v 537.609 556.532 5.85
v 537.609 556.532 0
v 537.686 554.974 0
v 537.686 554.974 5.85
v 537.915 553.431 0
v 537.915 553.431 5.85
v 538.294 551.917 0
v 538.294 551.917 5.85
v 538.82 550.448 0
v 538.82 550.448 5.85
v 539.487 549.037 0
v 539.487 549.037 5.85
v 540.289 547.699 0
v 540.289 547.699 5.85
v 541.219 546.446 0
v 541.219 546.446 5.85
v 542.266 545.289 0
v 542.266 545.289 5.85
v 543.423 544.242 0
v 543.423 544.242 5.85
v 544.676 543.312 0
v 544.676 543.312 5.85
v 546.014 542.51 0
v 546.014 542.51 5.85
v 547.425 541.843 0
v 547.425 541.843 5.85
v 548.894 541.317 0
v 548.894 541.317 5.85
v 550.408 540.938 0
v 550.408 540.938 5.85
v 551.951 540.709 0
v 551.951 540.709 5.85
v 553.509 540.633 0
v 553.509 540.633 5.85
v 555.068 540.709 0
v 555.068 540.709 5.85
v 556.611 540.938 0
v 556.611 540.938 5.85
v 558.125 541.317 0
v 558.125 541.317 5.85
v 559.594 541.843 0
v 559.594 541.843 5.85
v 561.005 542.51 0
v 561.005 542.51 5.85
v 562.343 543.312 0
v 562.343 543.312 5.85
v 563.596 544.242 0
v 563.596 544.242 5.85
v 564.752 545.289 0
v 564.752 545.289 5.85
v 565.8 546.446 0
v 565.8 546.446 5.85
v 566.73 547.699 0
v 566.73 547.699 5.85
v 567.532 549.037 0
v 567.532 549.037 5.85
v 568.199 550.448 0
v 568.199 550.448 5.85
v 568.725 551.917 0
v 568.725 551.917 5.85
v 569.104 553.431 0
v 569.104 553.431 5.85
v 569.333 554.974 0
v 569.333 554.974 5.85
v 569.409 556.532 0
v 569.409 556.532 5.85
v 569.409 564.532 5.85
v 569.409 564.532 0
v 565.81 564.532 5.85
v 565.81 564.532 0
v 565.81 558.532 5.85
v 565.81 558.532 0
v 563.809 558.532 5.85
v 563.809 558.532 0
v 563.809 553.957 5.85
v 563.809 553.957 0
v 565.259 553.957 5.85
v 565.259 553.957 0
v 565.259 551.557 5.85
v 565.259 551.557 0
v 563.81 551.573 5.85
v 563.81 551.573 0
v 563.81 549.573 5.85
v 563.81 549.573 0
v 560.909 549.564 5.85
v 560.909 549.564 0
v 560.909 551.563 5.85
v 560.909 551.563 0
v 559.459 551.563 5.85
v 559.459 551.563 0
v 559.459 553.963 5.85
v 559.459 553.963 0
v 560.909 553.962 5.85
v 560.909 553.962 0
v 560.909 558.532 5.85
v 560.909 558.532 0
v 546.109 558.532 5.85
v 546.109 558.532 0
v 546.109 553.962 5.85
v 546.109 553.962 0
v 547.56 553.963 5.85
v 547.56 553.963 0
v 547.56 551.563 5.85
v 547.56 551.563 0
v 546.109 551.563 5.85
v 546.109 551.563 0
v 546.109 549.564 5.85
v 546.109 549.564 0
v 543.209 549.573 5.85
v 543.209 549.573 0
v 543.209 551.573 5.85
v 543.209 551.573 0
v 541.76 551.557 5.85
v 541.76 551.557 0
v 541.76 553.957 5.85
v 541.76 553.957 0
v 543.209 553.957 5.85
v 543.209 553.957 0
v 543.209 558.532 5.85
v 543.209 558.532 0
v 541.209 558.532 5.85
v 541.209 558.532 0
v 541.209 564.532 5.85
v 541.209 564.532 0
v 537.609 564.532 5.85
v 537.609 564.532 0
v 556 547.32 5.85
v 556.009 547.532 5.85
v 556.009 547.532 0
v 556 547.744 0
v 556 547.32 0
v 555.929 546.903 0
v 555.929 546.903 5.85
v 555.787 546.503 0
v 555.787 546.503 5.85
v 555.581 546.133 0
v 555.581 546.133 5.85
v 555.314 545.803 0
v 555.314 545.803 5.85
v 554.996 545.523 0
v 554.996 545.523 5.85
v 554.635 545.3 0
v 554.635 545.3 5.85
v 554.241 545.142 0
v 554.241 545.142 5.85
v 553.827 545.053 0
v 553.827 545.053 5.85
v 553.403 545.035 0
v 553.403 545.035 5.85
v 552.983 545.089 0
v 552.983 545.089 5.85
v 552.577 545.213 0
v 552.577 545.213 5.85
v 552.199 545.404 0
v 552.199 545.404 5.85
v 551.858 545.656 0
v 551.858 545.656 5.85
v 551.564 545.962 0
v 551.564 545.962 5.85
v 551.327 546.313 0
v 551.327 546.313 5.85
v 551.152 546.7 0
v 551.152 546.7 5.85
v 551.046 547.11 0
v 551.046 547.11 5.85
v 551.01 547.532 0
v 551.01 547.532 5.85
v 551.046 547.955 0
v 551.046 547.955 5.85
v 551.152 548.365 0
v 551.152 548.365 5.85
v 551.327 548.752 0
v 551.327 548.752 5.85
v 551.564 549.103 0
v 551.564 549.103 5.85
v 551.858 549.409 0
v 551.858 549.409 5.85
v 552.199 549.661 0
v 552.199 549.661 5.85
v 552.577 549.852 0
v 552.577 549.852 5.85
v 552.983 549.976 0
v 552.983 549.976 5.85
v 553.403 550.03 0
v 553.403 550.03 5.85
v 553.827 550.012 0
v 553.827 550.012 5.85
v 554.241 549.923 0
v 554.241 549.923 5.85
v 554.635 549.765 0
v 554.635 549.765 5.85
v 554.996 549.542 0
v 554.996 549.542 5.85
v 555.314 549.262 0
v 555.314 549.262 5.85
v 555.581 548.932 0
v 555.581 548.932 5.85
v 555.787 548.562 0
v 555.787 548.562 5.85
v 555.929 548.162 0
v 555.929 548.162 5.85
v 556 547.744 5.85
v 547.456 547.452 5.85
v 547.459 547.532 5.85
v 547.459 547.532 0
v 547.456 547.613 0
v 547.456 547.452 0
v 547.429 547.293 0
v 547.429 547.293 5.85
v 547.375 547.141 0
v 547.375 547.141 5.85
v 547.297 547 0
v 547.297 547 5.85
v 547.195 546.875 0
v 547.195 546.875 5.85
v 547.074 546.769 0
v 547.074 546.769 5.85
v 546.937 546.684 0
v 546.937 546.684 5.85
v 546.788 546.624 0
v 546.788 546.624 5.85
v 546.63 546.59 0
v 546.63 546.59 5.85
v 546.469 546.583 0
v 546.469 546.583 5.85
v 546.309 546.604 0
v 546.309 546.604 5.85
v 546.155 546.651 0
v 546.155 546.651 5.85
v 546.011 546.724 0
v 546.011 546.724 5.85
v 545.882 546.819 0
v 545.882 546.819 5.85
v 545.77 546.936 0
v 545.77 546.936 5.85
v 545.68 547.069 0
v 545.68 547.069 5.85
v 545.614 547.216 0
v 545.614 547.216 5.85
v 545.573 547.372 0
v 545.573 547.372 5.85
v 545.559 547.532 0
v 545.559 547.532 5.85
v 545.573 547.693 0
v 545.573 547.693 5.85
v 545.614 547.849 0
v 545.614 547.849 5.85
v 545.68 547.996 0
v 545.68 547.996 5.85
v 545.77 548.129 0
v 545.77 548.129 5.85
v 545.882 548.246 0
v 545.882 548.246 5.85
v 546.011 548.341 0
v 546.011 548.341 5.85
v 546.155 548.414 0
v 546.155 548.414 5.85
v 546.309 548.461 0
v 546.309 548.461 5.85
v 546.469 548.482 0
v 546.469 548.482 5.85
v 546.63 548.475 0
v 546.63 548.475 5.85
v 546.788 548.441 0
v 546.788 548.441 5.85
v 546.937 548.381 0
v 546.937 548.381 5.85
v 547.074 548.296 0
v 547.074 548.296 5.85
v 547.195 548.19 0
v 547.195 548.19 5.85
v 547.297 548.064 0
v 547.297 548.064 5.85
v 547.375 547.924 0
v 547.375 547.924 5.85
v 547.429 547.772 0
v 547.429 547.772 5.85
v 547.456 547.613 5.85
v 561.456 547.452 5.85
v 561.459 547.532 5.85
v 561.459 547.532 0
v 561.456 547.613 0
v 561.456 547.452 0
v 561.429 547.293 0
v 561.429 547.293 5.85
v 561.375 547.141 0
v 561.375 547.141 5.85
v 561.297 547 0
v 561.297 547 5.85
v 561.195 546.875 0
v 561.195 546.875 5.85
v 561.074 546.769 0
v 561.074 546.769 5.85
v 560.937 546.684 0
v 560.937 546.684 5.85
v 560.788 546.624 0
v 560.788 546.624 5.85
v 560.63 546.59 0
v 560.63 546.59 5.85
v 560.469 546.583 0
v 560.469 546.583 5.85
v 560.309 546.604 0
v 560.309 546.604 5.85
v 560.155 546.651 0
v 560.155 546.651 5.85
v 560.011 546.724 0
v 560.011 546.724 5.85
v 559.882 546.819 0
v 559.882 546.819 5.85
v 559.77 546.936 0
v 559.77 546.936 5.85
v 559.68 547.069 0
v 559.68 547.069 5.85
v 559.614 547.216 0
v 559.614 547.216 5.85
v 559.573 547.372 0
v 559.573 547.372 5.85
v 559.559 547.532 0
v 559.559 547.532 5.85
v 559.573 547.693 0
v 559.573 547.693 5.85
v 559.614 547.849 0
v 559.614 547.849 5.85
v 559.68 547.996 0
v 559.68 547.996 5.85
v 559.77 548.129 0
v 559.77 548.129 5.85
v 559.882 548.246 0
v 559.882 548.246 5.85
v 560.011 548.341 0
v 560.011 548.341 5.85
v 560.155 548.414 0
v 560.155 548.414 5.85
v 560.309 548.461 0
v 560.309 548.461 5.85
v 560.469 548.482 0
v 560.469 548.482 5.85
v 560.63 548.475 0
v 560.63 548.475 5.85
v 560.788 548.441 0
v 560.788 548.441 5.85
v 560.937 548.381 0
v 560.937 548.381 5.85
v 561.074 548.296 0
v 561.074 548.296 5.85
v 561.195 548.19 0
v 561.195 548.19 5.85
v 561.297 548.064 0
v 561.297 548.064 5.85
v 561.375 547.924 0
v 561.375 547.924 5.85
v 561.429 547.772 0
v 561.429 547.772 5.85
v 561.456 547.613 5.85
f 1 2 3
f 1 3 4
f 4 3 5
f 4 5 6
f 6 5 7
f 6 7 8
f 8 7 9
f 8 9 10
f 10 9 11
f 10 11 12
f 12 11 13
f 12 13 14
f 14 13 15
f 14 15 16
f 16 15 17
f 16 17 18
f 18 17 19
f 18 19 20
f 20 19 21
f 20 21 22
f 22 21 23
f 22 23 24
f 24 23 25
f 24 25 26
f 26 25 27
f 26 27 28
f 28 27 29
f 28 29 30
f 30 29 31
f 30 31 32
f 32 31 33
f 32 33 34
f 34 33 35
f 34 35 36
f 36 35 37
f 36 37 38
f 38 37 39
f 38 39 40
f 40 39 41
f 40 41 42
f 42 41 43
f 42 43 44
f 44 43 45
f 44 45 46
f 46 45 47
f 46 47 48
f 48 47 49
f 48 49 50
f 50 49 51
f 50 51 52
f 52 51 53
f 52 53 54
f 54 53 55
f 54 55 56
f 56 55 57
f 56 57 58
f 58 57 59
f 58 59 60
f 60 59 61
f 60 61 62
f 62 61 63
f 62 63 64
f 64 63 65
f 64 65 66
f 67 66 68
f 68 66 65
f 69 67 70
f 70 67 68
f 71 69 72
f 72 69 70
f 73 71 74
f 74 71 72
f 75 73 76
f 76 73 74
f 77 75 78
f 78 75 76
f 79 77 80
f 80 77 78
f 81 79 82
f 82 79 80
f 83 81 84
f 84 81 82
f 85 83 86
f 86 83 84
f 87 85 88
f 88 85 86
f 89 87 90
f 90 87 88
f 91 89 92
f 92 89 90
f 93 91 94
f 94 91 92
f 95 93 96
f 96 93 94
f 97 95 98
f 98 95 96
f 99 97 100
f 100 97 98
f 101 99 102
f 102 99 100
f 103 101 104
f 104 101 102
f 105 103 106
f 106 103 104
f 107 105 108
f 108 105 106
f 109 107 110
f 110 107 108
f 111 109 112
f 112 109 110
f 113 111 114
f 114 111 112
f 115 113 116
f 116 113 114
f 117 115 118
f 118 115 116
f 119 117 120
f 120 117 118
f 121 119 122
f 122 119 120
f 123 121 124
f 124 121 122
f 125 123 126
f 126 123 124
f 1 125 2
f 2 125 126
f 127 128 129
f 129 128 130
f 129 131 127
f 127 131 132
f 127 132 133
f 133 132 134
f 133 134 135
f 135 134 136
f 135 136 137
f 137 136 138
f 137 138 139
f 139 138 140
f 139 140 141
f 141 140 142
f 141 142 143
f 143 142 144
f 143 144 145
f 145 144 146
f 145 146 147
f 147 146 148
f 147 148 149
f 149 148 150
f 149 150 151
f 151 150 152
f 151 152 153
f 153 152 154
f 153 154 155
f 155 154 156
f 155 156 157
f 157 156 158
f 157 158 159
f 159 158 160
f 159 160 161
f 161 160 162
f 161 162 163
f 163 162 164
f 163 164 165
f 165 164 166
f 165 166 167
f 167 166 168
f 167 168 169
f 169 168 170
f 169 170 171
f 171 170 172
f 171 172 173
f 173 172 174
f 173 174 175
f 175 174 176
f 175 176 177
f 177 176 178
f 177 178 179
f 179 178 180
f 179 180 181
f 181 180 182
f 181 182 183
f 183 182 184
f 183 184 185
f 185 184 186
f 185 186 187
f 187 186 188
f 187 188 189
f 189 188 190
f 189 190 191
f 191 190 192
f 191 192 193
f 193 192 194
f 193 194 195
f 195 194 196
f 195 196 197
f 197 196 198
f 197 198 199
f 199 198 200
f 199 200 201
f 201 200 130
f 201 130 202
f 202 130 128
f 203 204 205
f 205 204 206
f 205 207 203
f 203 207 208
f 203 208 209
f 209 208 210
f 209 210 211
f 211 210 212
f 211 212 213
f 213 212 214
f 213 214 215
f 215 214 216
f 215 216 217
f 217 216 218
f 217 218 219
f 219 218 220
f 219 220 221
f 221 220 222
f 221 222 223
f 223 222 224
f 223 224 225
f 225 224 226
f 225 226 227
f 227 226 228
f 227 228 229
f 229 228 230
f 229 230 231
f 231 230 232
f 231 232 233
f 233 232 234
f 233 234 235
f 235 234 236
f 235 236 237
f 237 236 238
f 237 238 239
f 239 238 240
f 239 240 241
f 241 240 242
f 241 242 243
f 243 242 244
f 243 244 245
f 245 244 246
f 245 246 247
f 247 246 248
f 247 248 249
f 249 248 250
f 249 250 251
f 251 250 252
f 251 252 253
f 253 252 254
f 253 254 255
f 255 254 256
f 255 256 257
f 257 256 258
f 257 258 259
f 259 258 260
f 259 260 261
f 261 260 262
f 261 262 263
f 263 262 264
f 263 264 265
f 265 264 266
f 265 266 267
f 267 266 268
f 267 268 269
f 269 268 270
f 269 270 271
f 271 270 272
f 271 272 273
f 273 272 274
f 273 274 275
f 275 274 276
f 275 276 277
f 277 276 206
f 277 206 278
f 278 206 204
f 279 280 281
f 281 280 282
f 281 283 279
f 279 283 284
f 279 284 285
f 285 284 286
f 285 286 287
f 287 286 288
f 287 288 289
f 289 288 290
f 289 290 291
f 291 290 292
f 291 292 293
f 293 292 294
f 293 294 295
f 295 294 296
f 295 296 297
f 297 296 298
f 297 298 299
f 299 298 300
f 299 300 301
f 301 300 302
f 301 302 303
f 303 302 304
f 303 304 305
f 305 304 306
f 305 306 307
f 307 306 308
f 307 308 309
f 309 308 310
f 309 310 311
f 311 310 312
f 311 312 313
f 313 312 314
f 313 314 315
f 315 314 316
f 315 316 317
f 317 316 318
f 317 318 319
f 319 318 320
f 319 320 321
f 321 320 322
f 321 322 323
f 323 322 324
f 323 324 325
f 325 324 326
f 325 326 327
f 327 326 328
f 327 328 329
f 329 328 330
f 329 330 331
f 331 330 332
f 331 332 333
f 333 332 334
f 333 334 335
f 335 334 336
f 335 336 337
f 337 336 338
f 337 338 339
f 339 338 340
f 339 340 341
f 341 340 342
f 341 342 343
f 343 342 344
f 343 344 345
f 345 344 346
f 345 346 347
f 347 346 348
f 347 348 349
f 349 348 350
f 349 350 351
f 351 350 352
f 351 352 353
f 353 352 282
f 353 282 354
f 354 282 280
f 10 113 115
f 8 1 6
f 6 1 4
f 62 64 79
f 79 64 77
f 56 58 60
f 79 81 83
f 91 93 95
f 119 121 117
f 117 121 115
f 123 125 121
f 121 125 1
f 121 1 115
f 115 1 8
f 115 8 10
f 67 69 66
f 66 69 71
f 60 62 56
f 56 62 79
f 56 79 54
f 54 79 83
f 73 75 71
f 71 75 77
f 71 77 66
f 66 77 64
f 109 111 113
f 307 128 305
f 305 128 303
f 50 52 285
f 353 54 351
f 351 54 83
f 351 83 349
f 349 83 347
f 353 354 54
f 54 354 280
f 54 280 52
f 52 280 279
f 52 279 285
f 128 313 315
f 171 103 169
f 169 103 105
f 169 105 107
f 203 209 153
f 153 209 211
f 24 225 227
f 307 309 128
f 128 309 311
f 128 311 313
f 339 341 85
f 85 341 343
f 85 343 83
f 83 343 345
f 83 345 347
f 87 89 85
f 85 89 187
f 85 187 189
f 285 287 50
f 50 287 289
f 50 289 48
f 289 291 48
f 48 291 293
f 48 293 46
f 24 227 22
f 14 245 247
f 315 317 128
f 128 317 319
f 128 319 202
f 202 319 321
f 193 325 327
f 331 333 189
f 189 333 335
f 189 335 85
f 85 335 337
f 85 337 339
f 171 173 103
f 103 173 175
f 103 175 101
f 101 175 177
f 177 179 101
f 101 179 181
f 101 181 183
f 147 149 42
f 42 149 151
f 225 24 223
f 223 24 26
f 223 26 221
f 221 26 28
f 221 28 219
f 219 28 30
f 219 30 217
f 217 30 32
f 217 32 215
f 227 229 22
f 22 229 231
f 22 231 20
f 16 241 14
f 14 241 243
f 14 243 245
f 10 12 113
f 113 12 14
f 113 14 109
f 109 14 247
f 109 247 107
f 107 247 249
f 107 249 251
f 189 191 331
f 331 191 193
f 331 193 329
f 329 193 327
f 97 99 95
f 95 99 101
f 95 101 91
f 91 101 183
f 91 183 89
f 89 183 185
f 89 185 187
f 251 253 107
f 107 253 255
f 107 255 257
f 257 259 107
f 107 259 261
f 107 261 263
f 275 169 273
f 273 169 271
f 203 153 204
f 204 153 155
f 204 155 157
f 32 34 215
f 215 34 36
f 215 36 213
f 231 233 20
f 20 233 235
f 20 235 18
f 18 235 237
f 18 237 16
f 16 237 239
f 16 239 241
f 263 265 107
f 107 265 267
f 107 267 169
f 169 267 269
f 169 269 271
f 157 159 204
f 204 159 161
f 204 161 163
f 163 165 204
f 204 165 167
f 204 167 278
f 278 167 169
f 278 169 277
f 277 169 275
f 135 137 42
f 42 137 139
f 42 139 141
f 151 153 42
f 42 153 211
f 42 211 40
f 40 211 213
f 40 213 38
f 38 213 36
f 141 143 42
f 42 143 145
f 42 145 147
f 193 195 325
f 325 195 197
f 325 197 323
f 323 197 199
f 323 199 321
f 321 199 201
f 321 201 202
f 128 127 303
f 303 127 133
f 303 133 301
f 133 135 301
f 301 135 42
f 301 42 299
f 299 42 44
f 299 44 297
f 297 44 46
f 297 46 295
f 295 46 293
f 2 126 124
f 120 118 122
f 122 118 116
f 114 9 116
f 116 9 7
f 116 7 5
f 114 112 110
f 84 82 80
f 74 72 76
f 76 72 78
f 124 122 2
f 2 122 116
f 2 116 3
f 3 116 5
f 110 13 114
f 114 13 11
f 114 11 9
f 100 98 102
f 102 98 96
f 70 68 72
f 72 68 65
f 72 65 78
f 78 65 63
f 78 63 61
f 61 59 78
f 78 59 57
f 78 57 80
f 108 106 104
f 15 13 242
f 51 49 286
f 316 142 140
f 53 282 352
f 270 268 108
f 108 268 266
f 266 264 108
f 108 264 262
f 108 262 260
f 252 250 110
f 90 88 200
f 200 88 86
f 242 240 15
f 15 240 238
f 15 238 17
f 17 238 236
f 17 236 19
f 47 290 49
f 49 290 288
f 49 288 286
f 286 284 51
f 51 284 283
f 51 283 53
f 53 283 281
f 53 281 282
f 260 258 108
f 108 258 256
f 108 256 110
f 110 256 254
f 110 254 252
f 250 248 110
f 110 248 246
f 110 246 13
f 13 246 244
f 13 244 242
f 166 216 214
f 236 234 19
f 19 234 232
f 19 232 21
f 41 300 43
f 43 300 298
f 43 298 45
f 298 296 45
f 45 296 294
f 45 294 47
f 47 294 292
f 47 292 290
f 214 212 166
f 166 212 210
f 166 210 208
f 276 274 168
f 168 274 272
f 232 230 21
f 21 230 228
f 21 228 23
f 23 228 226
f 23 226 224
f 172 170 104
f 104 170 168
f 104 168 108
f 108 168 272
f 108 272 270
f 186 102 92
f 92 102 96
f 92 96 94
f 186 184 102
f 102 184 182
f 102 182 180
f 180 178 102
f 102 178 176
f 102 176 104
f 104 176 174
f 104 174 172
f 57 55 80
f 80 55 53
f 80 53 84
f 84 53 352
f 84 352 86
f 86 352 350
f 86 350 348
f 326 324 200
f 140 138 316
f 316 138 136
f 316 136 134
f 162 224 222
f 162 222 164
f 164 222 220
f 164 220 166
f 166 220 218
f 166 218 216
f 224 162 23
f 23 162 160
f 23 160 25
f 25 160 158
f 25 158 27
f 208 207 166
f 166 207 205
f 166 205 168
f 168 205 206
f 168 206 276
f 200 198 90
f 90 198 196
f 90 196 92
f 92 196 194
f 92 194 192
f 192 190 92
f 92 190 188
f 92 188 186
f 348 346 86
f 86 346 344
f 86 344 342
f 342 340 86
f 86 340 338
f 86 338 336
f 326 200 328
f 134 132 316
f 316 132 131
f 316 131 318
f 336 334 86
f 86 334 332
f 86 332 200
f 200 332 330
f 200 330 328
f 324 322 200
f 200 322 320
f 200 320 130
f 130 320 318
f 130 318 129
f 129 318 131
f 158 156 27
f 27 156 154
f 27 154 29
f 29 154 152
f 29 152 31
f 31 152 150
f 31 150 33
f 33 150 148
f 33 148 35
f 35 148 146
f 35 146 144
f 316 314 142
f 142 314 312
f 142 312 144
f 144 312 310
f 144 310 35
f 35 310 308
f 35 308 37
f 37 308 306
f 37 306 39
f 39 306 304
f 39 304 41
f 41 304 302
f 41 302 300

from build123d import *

# Parameters (mm, degrees)
MODEL_R             = 0.95
MODEL_R_2           = 2.49989274
BOSS_EXTRUDE2_DEPTH = 5.85


with BuildPart() as part:
    # Model → Boss-Extrude2 (new body)
    with BuildSketch(Plane.XY):
        with BuildLine():
            Line((553.509477136, 558.532469), (546.109477136, 558.532469))
            Line((546.109477136, 558.532469), (546.109477136, 553.961751207))
            Line((546.109477136, 553.961751207), (547.559476844, 553.962671766))
            Line((547.559476844, 553.962671766), (547.559476844, 551.562620711))
            Line((547.559476844, 551.562620711), (546.109477111, 551.563500787))
            Line((546.109477111, 551.563500787), (546.109477111, 549.563500787))
            Line((546.109477111, 549.563500787), (543.209383557, 549.573000091))
            Line((543.209383557, 549.573000091), (543.209383557, 551.573000091))
            Line((543.209383557, 551.573000091), (541.759477136, 551.556526783))
            Line((541.759477136, 551.556526783), (541.759477136, 553.956577839))
            Line((541.759477136, 553.956577839), (543.209477136, 553.956563))
            Line((543.209477136, 553.956563), (543.209477136, 558.532469))
            Line((543.209477136, 558.532469), (541.209477136, 558.532469))
            Line((541.209477136, 558.532469), (541.209477136, 564.532469))
            Line((541.209477136, 564.532469), (537.609477136, 564.532469))
            Line((537.609477136, 564.532469), (537.609477136, 556.532469))
            ThreePointArc((537.609477136, 556.532469), (553.509477136, 540.632469), (569.409477136, 556.532469))
            Line((569.409477136, 556.532469), (569.409477136, 564.532469))
            Line((569.409477136, 564.532469), (565.809477136, 564.532469))
            Line((565.809477136, 564.532469), (565.809477136, 558.532469))
            Line((565.809477136, 558.532469), (563.809477136, 558.532469))
            Line((563.809477136, 558.532469), (563.809477136, 553.956563))
            Line((563.809477136, 553.956563), (565.259477136, 553.956577839))
            Line((565.259477136, 553.956577839), (565.259477136, 551.556526783))
            Line((565.259477136, 551.556526783), (563.809570715, 551.573000091))
            Line((563.809570715, 551.573000091), (563.809570715, 549.573000091))
            Line((563.809570715, 549.573000091), (560.909477161, 549.563500787))
            Line((560.909477161, 549.563500787), (560.909477161, 551.563500787))
            Line((560.909477161, 551.563500787), (559.459477428, 551.562620711))
            Line((559.459477428, 551.562620711), (559.459477428, 553.962671766))
            Line((559.459477428, 553.962671766), (560.909477136, 553.961751207))
            Line((560.909477136, 553.961751207), (560.909477136, 558.532469))
            Line((560.909477136, 558.532469), (553.509477136, 558.532469))
        make_face()
        with Locations((546.509477136, 547.532469)):
            Circle(MODEL_R, mode=Mode.SUBTRACT)
        with Locations((553.509477136, 547.532469)):
            Circle(MODEL_R_2, mode=Mode.SUBTRACT)
        with Locations((560.509477136, 547.532469)):
            Circle(MODEL_R, mode=Mode.SUBTRACT)
    extrude(amount=BOSS_EXTRUDE2_DEPTH)


solid = part.part
